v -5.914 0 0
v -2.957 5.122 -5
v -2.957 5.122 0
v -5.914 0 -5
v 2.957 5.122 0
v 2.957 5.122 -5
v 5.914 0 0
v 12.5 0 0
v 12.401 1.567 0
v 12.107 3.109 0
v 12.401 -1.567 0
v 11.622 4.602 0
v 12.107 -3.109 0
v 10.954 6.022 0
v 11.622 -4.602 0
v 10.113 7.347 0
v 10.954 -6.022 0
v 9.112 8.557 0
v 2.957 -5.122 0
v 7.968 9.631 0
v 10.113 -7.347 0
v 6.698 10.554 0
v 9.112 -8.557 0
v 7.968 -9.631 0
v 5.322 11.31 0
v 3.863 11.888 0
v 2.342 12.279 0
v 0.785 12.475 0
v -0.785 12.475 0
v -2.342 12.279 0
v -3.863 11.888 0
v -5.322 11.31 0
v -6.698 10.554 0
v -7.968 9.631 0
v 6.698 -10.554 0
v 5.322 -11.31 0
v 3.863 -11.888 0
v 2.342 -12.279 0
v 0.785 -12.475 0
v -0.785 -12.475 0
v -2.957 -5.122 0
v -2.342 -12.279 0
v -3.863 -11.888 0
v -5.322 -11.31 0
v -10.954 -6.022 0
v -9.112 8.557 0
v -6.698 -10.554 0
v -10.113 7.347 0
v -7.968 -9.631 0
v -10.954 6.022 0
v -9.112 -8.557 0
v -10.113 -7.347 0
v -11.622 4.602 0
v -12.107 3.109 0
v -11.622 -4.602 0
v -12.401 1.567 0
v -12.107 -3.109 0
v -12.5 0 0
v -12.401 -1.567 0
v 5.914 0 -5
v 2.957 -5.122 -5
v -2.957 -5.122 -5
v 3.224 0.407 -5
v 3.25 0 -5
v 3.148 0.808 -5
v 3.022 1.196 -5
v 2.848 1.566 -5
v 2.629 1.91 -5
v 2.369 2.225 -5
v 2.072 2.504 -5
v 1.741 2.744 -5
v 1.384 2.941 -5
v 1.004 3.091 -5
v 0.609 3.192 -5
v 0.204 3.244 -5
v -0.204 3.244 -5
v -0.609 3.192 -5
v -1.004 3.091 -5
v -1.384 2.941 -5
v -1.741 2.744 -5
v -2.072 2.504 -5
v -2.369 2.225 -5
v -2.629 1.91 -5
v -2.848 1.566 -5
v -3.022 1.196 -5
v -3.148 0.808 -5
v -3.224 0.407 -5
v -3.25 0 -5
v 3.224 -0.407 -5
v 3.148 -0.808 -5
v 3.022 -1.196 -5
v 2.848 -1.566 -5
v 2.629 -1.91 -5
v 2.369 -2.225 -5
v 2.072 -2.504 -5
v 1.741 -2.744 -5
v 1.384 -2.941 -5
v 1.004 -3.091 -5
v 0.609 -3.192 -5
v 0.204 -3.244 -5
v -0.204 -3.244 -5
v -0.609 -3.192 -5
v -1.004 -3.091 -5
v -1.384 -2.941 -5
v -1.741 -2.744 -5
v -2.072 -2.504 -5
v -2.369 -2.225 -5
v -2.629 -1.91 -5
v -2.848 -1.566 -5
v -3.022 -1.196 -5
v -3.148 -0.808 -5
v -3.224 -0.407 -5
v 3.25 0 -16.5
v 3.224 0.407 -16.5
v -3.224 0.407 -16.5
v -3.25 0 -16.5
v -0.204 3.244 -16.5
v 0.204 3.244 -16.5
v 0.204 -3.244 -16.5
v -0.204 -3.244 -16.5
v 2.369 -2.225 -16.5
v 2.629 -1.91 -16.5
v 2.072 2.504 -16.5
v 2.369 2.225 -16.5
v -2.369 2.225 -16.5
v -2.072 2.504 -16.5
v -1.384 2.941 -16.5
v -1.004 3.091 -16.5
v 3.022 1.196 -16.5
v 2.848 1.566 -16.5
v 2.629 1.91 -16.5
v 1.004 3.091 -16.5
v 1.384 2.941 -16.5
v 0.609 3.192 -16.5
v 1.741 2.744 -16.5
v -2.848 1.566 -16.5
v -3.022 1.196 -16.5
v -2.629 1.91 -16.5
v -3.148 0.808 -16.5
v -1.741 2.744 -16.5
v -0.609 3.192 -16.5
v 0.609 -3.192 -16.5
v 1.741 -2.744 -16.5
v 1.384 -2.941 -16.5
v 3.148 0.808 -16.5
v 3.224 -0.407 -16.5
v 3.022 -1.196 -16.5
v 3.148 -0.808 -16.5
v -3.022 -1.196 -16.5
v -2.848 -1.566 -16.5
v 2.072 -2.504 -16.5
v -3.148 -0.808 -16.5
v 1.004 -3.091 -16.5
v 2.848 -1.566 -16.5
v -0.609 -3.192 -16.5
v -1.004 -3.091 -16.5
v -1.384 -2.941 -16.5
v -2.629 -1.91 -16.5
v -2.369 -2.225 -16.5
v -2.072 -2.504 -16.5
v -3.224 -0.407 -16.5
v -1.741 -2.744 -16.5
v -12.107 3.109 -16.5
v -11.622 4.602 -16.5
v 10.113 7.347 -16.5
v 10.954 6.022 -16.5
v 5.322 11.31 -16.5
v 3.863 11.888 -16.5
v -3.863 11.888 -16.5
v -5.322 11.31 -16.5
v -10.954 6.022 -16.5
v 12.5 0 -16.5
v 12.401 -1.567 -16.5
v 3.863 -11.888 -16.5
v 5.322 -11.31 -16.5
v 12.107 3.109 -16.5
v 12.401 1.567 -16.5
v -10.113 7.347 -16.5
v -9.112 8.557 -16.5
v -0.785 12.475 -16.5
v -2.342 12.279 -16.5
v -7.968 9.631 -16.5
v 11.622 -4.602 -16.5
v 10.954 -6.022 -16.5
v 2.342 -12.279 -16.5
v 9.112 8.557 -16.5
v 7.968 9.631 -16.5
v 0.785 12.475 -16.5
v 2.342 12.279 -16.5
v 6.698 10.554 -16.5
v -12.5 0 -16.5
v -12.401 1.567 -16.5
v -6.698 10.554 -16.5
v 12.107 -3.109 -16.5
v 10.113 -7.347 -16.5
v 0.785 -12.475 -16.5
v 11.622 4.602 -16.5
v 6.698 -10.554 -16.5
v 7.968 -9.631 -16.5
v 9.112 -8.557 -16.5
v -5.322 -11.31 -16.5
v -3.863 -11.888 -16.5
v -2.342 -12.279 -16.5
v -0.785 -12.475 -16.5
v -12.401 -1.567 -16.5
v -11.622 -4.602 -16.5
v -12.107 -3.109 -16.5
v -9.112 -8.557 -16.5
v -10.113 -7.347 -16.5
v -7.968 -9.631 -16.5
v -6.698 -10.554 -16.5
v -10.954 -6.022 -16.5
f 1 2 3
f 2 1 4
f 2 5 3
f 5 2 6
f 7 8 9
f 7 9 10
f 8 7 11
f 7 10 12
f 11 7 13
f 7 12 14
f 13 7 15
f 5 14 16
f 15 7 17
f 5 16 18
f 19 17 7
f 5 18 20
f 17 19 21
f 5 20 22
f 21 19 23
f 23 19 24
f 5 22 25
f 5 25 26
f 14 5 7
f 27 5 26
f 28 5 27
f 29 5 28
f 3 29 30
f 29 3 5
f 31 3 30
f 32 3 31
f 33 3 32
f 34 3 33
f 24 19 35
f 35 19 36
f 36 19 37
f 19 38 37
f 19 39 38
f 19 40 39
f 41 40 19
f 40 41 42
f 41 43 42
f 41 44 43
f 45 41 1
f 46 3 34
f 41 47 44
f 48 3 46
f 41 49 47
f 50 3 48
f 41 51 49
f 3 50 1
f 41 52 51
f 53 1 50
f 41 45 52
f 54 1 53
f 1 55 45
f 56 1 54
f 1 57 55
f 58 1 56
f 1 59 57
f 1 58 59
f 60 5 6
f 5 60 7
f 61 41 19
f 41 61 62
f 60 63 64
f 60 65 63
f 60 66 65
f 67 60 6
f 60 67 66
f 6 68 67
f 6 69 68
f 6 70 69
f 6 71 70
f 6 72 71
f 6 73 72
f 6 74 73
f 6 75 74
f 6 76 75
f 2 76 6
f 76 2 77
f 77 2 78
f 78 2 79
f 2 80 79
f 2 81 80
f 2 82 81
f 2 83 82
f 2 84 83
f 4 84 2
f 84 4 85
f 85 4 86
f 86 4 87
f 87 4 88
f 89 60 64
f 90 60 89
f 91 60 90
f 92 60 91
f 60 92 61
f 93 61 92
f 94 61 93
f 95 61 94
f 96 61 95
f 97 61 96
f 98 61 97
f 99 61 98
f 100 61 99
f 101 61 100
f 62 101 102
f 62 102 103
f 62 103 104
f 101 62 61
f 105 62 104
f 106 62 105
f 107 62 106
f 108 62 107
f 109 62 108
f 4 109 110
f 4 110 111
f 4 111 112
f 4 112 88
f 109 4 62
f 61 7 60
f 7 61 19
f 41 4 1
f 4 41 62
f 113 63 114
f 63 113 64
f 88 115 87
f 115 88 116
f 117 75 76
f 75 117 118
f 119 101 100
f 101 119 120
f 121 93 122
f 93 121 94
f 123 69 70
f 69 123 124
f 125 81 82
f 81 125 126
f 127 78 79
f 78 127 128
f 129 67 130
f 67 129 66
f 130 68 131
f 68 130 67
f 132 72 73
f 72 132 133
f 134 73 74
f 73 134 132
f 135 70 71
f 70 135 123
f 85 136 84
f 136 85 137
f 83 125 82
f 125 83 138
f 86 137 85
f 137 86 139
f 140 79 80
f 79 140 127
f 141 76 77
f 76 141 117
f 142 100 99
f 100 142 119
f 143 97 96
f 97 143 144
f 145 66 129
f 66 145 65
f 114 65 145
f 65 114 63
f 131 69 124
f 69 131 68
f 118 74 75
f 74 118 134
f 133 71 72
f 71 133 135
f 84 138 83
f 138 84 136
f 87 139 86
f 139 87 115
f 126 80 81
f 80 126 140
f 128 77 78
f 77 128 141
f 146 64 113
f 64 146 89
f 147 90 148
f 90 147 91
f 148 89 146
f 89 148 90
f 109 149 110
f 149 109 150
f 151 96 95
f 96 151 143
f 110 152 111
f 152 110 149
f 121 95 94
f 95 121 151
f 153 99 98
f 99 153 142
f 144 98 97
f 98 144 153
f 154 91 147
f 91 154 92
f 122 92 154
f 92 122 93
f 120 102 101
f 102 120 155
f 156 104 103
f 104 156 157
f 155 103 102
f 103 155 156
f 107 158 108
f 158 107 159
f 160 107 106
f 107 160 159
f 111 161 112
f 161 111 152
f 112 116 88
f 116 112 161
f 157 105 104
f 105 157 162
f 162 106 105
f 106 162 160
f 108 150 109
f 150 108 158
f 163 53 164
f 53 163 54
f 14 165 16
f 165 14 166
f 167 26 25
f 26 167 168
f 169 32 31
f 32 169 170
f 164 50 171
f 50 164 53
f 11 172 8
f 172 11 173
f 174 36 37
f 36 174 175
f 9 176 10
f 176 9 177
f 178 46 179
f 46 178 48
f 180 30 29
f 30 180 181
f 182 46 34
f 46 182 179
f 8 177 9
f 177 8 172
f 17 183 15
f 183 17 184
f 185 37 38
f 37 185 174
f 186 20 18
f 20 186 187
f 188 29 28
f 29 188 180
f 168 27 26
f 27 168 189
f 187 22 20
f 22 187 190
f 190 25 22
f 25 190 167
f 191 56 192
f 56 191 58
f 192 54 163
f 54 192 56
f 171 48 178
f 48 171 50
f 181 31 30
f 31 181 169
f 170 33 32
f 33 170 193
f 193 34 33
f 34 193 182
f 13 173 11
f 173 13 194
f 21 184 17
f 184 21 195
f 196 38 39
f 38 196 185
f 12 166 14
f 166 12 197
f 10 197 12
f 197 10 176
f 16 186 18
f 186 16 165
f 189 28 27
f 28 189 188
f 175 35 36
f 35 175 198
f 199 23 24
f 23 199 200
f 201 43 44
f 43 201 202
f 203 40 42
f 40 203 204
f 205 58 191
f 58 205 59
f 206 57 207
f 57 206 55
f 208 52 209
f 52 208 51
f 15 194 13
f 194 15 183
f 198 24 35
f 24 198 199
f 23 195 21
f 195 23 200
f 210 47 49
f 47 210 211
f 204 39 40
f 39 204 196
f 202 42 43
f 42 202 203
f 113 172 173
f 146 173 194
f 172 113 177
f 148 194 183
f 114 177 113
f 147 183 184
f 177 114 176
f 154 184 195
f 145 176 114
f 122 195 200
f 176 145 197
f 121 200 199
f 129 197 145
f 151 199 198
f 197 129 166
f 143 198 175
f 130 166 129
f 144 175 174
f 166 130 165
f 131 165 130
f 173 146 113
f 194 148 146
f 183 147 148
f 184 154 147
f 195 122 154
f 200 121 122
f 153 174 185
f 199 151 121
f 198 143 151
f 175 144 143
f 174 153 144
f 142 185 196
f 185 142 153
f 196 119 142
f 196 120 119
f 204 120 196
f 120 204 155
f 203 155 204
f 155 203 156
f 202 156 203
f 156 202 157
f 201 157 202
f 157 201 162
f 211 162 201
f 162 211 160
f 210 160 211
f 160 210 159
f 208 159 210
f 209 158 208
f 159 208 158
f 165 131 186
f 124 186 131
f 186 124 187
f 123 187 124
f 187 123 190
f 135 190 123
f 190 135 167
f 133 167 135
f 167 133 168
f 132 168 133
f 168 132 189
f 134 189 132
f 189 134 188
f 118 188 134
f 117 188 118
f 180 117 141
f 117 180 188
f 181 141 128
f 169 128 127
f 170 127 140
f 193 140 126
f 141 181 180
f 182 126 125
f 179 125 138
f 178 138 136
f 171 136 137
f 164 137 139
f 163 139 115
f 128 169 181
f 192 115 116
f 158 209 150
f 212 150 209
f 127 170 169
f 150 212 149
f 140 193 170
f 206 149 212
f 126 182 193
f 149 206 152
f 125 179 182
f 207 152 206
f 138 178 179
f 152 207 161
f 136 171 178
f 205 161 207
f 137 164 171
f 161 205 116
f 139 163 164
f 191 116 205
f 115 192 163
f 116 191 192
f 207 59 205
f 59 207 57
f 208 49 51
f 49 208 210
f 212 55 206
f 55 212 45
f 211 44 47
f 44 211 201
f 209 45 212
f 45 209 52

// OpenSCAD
$fn = 50;


difference() {
	union() {
		translate(v = [0, 0, -16.5000000000]) {
			cylinder(h = 16.5000000000, r = 12.5000000000);
		}
	}
	union() {
		translate(v = [0, 0, 0]) {
			rotate(a = [0, 0, 0]) {
				difference() {
					union() {
						translate(v = [0, 0, -5]) {
							linear_extrude(height = 5) {
								polygon(points = [[5.9142500000, 0.0000000000], [2.9571250000, 5.1218907443], [-2.9571250000, 5.1218907443], [-5.9142500000, 0.0000000000], [-2.9571250000, -5.1218907443], [2.9571250000, -5.1218907443]]);
							}
						}
					}
					union();
				}
			}
		}
		#translate(v = [0, 0, -100.0000000000]) {
			cylinder(h = 200, r = 3.2500000000);
		}
	}
}
